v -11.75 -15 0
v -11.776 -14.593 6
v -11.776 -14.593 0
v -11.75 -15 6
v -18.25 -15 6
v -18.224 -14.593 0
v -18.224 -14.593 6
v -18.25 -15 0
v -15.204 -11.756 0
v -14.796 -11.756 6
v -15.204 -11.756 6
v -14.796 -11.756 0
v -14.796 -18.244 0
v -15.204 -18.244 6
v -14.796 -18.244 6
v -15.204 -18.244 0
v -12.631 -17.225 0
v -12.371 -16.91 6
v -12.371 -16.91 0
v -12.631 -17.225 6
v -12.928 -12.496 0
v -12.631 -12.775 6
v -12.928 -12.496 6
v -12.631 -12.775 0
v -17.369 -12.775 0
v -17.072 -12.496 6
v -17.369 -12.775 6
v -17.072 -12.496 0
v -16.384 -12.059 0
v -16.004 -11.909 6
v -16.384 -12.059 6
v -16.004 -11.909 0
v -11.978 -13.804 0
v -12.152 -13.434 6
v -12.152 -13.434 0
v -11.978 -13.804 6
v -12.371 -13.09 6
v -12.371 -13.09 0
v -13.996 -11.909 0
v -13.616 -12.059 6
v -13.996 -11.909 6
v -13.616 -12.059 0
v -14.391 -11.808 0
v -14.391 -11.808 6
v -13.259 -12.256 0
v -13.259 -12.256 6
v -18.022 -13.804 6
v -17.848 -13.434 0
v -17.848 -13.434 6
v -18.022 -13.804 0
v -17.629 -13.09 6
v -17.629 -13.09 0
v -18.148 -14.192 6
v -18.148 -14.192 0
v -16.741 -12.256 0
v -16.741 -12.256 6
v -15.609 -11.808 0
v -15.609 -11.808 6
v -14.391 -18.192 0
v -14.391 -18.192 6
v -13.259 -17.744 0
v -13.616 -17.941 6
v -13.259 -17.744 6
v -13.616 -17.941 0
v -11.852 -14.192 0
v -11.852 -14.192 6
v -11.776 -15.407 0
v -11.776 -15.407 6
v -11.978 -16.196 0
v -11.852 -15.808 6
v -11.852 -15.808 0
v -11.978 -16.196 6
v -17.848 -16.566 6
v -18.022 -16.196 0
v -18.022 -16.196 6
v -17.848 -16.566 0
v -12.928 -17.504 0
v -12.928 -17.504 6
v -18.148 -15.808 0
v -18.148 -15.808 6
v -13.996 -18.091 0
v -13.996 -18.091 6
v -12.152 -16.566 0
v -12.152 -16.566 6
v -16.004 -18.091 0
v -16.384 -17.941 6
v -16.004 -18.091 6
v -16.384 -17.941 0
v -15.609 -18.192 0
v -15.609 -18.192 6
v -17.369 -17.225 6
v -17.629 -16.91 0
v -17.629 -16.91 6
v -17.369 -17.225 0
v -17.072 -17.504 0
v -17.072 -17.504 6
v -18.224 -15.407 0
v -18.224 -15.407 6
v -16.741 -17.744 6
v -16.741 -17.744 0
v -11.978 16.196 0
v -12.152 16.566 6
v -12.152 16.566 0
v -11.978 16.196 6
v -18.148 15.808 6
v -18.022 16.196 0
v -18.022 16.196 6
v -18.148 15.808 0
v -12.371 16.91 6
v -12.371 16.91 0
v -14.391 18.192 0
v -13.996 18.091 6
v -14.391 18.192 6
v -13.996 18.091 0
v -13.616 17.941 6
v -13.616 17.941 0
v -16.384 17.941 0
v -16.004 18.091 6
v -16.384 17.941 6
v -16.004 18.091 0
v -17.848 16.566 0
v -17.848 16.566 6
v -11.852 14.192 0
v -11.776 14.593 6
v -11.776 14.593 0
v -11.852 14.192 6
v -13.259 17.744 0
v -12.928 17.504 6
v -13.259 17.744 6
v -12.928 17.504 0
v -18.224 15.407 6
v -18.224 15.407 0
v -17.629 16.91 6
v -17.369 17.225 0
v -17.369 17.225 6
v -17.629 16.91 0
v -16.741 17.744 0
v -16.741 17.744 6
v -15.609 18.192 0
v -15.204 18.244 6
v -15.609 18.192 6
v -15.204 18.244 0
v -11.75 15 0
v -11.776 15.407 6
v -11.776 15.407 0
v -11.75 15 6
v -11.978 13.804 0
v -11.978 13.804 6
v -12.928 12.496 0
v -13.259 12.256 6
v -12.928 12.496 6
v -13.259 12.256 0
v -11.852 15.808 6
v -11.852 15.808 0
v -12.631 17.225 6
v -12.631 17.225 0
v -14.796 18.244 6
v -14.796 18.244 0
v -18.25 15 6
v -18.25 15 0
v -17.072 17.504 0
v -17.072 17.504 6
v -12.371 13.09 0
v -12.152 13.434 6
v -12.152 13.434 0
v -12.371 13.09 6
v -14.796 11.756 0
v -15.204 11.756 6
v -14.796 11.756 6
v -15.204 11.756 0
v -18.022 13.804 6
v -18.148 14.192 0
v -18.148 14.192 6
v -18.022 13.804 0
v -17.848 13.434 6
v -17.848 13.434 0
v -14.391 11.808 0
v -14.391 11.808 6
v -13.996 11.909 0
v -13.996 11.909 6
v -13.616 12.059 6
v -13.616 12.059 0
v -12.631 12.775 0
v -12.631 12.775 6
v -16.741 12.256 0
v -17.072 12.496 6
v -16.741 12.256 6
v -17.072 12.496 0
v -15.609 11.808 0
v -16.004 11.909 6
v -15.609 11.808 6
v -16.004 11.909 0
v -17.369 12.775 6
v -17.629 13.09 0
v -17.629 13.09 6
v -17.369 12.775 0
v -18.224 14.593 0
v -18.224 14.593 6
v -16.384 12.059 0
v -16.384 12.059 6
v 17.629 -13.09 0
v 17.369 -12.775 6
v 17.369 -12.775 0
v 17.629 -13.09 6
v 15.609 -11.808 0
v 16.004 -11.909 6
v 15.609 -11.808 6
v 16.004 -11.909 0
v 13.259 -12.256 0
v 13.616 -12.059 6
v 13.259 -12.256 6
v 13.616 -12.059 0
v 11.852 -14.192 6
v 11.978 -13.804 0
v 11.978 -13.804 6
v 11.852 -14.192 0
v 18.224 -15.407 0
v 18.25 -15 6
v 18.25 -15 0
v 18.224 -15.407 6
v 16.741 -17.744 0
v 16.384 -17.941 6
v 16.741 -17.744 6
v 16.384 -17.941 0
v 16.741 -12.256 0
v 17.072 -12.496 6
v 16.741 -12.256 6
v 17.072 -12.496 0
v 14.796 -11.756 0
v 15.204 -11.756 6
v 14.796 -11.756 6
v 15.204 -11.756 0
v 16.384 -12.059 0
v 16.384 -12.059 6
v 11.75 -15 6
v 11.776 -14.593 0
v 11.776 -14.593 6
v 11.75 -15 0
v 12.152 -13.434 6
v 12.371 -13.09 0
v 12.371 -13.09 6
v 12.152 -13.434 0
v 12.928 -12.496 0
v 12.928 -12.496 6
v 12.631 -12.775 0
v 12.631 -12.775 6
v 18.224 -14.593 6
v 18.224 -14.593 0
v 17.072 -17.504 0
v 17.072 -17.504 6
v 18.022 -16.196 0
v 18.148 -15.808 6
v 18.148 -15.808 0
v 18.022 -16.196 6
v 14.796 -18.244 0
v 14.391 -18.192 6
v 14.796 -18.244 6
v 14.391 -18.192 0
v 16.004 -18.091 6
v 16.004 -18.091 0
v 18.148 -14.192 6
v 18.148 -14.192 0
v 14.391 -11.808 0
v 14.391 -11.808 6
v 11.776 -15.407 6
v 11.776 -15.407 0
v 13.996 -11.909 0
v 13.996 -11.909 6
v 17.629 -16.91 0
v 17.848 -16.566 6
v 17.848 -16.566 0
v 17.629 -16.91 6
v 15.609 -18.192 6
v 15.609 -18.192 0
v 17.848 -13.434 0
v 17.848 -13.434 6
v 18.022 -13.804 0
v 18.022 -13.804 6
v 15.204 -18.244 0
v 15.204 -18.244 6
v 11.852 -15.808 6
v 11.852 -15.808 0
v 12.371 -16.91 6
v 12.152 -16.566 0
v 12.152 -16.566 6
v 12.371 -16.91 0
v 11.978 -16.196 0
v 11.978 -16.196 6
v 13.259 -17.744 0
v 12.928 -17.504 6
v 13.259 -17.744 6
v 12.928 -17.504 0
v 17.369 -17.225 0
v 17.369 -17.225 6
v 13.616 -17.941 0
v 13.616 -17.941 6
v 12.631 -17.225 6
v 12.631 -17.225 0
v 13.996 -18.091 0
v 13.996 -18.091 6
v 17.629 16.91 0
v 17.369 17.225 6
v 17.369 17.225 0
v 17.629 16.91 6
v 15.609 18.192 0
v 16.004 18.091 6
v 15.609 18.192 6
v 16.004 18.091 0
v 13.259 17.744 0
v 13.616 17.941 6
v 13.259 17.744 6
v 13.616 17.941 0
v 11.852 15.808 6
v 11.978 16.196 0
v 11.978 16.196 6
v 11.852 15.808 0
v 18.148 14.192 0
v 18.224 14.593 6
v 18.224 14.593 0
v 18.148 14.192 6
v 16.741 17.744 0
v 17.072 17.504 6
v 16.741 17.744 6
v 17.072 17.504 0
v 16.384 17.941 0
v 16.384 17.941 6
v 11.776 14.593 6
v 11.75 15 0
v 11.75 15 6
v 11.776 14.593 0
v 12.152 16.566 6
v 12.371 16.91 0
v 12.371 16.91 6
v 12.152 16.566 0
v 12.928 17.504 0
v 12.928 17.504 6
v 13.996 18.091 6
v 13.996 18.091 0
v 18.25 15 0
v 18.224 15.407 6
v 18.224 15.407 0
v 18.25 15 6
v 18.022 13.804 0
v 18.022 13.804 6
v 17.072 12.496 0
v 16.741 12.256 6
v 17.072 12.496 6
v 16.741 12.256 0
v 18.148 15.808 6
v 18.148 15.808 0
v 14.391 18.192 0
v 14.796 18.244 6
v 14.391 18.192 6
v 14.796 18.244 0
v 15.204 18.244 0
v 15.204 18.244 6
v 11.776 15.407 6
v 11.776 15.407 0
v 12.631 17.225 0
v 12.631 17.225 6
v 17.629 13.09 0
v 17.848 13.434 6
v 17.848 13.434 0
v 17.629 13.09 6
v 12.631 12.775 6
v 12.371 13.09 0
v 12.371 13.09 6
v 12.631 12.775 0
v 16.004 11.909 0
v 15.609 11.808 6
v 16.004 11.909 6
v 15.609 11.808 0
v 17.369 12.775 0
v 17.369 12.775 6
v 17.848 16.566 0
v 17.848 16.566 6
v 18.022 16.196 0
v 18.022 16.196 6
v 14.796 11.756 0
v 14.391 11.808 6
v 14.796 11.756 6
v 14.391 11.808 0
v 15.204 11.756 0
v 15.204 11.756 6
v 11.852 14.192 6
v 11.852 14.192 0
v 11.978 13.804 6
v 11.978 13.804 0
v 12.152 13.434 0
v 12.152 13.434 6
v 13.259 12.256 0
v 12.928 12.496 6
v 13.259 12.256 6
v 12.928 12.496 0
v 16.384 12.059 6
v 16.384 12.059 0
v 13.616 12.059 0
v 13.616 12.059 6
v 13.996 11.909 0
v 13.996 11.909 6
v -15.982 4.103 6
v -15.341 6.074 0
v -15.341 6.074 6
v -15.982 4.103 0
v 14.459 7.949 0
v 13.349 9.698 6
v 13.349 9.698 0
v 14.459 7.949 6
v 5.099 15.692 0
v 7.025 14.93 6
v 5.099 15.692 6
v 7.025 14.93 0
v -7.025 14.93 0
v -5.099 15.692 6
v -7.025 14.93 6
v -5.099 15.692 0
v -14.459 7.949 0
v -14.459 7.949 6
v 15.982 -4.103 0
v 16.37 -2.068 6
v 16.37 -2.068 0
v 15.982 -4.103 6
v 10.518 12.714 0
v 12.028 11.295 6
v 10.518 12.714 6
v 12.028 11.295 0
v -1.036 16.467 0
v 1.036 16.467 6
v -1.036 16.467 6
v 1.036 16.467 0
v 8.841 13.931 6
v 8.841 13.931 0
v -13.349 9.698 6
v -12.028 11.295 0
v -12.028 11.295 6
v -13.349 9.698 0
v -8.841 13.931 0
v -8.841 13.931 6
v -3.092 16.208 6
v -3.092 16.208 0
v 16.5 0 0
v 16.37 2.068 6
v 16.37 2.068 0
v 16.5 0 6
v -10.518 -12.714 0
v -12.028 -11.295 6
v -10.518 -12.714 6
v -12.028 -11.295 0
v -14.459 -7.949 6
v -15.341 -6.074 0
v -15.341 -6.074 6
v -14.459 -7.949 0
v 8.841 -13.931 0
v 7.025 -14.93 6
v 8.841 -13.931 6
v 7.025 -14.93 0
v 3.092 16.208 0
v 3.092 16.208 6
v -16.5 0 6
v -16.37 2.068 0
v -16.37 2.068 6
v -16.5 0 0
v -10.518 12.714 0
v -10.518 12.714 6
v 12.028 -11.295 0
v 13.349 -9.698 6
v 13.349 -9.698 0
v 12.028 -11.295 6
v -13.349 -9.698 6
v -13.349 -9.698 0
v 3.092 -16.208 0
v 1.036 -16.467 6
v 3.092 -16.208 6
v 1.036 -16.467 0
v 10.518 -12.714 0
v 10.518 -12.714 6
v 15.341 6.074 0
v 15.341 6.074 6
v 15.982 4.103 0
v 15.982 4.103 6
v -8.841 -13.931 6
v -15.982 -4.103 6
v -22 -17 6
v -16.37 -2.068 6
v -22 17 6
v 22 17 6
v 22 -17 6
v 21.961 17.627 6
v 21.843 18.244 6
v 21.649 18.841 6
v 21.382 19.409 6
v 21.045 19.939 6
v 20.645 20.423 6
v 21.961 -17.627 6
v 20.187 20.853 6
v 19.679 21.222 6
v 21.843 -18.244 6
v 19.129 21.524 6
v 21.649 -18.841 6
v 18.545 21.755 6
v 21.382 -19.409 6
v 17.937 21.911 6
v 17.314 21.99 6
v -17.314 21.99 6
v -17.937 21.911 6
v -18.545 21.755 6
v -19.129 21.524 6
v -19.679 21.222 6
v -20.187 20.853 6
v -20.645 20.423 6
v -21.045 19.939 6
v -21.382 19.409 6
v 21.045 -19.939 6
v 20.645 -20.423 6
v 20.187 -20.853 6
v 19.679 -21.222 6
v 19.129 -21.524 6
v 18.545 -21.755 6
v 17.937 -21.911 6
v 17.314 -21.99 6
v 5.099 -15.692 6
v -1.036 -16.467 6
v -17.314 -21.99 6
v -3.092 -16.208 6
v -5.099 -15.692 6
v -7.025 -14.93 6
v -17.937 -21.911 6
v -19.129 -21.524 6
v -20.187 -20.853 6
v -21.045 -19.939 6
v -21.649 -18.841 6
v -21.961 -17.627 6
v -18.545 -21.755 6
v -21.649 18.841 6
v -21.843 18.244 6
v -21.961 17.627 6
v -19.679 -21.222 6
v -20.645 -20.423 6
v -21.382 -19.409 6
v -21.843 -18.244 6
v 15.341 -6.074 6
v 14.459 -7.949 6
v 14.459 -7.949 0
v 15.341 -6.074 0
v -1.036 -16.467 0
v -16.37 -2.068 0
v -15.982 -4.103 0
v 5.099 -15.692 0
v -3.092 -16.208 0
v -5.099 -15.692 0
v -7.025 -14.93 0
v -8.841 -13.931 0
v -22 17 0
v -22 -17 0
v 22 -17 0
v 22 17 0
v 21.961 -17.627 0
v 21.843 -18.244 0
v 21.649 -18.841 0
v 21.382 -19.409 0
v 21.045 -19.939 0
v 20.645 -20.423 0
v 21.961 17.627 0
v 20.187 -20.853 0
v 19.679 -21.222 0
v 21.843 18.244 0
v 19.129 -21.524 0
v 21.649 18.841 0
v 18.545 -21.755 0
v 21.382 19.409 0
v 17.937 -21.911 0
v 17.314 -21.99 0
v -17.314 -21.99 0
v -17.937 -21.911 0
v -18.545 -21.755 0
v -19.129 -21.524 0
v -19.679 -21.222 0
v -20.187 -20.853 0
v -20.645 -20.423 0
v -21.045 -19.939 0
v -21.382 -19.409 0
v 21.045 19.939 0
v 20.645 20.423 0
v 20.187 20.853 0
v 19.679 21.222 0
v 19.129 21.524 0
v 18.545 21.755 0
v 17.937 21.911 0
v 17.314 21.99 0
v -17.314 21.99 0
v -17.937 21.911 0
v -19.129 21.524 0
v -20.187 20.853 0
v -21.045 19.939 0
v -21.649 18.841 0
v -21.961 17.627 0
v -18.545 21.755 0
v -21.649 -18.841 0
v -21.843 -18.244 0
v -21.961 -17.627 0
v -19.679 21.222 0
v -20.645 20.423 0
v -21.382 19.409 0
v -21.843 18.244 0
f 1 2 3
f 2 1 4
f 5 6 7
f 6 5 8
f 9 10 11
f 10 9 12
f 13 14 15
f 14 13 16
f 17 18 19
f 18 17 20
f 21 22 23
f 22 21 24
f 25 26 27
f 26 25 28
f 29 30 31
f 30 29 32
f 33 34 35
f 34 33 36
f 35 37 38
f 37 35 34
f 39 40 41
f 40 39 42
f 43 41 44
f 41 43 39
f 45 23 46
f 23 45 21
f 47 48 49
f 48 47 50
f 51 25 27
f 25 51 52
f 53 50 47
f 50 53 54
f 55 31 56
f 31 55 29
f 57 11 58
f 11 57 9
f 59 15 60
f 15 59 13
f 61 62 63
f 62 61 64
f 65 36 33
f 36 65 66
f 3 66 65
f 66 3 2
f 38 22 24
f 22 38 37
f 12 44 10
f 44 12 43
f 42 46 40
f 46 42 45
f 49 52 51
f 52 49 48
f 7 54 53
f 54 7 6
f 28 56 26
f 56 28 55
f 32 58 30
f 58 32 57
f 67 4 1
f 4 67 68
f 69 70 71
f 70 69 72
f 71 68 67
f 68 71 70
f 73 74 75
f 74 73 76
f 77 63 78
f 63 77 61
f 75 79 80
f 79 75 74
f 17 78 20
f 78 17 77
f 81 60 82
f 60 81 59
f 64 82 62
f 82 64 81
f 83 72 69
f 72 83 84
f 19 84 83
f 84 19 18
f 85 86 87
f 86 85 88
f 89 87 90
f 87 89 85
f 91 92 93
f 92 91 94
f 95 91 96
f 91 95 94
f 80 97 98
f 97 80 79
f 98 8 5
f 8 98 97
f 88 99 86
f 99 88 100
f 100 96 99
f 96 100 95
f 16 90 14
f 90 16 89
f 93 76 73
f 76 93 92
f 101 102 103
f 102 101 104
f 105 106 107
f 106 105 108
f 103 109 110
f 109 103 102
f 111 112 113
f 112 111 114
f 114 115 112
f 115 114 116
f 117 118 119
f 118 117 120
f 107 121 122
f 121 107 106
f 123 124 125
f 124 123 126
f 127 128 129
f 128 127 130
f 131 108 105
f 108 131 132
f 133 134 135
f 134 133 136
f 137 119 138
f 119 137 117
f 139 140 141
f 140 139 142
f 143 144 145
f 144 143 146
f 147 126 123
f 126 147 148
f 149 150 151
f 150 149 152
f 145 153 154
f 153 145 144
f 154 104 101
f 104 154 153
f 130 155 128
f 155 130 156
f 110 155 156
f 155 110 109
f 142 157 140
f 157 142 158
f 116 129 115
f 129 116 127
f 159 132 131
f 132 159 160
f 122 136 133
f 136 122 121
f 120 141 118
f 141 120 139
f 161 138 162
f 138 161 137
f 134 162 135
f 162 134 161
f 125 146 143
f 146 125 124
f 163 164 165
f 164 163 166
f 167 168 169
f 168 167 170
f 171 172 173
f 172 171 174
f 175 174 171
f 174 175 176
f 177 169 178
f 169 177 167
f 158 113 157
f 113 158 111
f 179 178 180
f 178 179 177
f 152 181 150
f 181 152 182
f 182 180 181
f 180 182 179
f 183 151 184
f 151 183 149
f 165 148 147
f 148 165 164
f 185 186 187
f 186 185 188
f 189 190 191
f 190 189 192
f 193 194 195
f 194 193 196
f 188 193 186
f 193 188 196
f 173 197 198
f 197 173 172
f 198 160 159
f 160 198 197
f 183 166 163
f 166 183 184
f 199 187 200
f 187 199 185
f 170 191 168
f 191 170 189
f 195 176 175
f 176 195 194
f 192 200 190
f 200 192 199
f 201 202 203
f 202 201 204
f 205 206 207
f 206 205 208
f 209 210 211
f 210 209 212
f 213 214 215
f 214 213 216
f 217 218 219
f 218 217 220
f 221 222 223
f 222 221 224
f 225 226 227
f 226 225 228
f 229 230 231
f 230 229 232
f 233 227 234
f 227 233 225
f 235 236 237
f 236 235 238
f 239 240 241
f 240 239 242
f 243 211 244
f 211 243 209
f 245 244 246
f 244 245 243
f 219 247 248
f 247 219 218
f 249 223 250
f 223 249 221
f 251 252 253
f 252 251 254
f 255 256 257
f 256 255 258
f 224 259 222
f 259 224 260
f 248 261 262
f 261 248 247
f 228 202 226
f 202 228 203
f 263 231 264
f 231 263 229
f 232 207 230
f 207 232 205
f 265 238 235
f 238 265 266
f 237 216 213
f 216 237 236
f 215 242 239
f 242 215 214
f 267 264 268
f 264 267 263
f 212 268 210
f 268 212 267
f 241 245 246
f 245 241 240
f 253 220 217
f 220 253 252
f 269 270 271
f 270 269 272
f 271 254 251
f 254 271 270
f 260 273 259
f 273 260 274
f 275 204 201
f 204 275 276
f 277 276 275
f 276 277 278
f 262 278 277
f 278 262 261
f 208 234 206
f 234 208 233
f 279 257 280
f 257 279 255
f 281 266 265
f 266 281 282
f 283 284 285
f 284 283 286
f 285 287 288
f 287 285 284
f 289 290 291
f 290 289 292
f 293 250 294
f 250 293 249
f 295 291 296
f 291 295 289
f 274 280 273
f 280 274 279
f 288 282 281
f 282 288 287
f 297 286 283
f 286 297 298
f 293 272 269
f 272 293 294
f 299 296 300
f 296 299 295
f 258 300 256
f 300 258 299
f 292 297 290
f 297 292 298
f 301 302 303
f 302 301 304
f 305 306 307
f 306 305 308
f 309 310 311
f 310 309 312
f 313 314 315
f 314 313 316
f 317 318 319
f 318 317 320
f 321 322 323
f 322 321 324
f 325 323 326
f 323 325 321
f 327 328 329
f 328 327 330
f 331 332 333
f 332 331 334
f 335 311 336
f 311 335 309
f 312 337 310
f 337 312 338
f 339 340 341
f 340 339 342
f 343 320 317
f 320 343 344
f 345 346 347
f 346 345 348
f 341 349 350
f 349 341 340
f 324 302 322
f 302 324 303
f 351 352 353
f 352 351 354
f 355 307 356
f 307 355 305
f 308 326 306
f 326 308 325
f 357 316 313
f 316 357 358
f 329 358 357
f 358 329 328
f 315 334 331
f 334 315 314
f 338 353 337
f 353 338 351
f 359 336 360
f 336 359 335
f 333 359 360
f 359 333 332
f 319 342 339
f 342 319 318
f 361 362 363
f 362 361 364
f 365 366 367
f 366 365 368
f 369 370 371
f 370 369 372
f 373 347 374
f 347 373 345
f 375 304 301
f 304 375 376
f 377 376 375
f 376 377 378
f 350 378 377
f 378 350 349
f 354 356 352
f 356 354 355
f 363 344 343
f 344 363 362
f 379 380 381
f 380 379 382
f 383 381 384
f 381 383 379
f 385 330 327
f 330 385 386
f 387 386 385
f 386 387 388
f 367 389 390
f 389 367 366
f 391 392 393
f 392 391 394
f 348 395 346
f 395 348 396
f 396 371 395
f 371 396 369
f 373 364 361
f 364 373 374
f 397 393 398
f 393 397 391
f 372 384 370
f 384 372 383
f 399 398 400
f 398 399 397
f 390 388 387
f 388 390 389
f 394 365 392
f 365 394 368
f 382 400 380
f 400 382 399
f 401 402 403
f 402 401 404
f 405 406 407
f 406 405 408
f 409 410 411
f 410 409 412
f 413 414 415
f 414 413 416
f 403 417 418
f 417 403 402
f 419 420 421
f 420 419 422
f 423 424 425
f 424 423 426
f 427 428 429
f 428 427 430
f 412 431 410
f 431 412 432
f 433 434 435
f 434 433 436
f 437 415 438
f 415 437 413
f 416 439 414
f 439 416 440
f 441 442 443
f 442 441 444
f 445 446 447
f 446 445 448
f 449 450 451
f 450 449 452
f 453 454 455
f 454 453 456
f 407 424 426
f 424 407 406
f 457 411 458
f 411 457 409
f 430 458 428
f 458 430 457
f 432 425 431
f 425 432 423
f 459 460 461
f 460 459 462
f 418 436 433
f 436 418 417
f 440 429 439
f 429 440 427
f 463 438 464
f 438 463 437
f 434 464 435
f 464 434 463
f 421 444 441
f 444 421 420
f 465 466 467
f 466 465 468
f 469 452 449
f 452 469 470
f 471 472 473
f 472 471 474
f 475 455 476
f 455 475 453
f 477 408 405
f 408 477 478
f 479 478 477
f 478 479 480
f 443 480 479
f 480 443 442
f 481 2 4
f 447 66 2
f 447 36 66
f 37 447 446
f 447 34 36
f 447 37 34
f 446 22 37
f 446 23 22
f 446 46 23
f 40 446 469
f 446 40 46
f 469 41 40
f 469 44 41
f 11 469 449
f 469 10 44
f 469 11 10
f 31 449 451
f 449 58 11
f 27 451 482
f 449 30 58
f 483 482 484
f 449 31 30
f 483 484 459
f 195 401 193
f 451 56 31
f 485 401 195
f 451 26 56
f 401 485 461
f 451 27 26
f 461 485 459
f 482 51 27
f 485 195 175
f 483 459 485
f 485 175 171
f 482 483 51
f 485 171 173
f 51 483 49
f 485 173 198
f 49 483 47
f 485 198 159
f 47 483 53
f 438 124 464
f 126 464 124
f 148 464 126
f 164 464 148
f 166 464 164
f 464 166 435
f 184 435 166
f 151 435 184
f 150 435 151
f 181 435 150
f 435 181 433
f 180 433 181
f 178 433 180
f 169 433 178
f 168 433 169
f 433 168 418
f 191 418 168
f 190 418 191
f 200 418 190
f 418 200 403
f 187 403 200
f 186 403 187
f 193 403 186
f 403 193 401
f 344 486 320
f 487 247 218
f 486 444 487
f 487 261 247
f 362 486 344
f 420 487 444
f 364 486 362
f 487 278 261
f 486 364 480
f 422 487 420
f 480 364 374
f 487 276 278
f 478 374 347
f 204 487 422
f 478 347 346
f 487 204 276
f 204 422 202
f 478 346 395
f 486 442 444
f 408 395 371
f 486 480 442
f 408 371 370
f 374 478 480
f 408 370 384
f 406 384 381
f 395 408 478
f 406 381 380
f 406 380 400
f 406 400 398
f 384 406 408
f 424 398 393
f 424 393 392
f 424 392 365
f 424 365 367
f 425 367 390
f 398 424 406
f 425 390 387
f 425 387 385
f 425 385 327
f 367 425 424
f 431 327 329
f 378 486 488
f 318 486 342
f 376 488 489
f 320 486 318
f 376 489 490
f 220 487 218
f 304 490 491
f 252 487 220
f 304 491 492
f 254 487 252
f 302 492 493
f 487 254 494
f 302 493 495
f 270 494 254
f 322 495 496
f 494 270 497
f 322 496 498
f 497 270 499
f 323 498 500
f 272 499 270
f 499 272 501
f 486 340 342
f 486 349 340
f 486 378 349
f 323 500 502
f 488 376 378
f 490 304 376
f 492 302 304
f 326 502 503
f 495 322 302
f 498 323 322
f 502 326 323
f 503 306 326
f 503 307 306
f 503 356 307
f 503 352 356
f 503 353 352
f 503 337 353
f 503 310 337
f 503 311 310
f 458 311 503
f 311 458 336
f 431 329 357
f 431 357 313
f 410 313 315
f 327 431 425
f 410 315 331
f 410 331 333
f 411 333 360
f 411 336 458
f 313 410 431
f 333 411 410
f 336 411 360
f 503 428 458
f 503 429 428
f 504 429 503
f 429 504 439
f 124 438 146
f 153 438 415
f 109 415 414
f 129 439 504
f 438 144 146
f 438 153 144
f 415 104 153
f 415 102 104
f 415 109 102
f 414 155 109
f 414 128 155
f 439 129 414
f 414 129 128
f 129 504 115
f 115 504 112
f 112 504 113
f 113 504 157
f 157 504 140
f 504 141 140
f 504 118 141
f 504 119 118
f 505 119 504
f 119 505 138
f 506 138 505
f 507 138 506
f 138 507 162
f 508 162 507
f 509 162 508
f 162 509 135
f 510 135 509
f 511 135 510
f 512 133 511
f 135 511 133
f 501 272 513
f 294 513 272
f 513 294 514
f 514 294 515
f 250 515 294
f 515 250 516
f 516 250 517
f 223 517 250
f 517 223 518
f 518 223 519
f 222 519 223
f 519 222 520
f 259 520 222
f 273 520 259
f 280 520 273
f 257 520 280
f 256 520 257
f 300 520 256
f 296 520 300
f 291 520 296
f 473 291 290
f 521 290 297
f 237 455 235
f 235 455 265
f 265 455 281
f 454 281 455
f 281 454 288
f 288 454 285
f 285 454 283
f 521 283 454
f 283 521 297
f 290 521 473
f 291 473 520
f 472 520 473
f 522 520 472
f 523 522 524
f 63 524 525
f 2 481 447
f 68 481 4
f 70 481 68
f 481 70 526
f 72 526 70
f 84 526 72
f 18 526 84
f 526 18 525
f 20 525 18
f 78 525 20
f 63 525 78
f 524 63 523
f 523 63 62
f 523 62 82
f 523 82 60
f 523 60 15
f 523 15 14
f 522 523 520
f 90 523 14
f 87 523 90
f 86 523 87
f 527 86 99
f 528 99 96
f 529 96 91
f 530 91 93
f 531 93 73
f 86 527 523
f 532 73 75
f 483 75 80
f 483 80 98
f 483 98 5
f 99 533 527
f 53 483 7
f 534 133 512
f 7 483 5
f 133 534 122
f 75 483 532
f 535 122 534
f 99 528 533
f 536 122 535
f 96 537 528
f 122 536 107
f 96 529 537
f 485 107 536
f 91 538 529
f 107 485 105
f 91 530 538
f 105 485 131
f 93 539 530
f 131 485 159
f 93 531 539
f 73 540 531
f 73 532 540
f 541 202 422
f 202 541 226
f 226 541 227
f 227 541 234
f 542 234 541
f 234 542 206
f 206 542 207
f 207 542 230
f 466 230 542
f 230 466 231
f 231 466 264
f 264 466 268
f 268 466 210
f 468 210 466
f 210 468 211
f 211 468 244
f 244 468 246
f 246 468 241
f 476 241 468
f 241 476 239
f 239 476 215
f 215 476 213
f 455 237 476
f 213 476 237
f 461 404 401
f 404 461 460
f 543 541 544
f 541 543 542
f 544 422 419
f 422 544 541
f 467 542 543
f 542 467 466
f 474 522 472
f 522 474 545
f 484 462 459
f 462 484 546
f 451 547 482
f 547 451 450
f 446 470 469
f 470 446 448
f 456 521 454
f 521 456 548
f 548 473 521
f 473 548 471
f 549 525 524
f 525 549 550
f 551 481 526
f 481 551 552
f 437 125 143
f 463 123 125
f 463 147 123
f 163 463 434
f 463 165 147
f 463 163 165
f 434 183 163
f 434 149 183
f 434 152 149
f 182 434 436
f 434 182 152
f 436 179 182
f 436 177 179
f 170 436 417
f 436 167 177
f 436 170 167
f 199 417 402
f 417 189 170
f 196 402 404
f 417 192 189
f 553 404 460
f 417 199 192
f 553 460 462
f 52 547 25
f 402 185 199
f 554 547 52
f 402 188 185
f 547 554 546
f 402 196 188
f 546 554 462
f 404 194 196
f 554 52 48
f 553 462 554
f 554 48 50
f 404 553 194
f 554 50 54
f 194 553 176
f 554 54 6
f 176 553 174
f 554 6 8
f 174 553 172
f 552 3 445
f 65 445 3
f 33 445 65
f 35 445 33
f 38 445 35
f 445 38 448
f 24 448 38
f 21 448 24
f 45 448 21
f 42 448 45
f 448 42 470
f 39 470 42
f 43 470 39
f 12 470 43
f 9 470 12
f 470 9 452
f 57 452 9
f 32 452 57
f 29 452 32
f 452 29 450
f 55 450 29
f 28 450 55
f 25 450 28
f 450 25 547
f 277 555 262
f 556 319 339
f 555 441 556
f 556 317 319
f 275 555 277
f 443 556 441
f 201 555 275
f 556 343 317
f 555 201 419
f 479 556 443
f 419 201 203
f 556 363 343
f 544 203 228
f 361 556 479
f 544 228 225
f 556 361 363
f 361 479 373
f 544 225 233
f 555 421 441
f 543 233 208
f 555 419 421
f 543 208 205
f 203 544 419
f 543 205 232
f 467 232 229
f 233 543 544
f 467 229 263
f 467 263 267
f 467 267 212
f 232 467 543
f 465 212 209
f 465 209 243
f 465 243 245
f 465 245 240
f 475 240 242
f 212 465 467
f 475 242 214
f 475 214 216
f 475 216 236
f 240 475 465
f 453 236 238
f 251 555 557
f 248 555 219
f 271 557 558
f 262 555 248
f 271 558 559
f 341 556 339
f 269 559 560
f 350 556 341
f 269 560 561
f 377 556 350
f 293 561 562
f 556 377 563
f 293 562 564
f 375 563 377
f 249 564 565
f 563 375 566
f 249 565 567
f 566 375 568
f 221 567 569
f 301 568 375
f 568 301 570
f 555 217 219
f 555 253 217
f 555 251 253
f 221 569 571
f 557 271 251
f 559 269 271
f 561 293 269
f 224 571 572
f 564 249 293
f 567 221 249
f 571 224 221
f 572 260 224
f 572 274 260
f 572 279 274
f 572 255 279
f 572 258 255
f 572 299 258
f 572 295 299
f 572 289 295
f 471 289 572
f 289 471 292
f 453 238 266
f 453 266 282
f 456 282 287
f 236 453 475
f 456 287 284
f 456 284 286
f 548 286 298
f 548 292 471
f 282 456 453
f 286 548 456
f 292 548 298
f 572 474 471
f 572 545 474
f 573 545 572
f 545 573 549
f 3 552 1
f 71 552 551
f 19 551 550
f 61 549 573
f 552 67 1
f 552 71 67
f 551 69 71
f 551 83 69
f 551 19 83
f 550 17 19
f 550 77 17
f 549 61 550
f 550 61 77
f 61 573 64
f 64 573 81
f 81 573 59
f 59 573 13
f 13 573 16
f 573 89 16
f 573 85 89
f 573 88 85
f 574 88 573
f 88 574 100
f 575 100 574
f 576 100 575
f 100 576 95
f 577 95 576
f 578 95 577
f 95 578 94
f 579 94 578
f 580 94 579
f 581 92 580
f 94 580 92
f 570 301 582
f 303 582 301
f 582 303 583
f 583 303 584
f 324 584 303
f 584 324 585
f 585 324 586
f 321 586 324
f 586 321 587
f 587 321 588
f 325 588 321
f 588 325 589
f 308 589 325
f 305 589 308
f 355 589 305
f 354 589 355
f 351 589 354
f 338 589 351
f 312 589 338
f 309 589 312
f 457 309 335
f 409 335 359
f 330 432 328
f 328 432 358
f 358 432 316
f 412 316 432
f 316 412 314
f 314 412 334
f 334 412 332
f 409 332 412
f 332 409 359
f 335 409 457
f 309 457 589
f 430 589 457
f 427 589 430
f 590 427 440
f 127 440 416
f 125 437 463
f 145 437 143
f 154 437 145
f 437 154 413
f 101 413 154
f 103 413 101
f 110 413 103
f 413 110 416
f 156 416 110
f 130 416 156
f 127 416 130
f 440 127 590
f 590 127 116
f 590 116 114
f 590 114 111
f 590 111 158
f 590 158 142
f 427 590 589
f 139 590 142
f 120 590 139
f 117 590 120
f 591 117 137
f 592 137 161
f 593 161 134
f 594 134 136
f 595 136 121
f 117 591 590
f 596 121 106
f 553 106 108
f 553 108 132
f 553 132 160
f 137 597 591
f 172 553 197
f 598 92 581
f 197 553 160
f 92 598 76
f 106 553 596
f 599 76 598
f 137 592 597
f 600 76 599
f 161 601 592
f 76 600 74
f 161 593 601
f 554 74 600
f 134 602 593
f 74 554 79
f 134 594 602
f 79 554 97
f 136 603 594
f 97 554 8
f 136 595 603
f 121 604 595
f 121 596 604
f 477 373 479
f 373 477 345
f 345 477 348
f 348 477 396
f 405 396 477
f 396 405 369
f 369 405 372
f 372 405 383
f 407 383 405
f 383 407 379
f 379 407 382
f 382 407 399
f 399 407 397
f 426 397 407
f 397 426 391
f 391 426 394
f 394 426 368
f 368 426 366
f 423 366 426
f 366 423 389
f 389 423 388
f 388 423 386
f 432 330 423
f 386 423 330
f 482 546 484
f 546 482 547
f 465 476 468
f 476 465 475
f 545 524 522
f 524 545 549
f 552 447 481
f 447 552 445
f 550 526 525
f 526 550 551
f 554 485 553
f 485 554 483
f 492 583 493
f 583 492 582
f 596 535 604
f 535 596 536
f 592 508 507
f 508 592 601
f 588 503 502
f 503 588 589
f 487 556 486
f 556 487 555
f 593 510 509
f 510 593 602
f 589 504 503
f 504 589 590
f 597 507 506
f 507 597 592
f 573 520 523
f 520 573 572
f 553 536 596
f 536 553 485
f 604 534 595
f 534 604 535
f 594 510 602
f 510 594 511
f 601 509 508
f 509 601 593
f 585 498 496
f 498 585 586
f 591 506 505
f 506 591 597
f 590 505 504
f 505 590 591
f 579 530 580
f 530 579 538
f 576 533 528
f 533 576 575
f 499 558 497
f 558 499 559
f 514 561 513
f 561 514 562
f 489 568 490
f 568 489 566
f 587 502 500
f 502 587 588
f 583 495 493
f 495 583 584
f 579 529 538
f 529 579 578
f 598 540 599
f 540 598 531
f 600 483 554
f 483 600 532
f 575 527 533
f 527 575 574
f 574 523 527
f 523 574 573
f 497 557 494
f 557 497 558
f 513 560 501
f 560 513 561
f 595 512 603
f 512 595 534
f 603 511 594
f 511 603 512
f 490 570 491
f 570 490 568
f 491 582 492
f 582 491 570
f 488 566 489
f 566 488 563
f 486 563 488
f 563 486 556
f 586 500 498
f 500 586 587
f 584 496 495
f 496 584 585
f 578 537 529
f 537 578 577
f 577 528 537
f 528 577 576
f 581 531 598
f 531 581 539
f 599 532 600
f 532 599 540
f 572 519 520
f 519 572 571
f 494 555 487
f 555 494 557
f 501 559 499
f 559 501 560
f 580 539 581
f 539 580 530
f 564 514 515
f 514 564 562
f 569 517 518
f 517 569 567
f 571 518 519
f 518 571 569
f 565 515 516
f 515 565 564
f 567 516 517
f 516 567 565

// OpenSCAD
$fn = 50;


difference() {
	union() {
		hull() {
			translate(v = [-17.0000000000, 17.0000000000, 0]) {
				cylinder(h = 6, r = 5);
			}
			translate(v = [17.0000000000, 17.0000000000, 0]) {
				cylinder(h = 6, r = 5);
			}
			translate(v = [-17.0000000000, -17.0000000000, 0]) {
				cylinder(h = 6, r = 5);
			}
			translate(v = [17.0000000000, -17.0000000000, 0]) {
				cylinder(h = 6, r = 5);
			}
		}
	}
	union() {
		#translate(v = [-15.0000000000, -15.0000000000, -100.0000000000]) {
			cylinder(h = 200, r = 3.2500000000);
		}
		#translate(v = [-15.0000000000, 15.0000000000, -100.0000000000]) {
			cylinder(h = 200, r = 3.2500000000);
		}
		#translate(v = [15.0000000000, -15.0000000000, -100.0000000000]) {
			cylinder(h = 200, r = 3.2500000000);
		}
		#translate(v = [15.0000000000, 15.0000000000, -100.0000000000]) {
			cylinder(h = 200, r = 3.2500000000);
		}
		#cylinder(h = 6, r = 16.5000000000);
	}
}
